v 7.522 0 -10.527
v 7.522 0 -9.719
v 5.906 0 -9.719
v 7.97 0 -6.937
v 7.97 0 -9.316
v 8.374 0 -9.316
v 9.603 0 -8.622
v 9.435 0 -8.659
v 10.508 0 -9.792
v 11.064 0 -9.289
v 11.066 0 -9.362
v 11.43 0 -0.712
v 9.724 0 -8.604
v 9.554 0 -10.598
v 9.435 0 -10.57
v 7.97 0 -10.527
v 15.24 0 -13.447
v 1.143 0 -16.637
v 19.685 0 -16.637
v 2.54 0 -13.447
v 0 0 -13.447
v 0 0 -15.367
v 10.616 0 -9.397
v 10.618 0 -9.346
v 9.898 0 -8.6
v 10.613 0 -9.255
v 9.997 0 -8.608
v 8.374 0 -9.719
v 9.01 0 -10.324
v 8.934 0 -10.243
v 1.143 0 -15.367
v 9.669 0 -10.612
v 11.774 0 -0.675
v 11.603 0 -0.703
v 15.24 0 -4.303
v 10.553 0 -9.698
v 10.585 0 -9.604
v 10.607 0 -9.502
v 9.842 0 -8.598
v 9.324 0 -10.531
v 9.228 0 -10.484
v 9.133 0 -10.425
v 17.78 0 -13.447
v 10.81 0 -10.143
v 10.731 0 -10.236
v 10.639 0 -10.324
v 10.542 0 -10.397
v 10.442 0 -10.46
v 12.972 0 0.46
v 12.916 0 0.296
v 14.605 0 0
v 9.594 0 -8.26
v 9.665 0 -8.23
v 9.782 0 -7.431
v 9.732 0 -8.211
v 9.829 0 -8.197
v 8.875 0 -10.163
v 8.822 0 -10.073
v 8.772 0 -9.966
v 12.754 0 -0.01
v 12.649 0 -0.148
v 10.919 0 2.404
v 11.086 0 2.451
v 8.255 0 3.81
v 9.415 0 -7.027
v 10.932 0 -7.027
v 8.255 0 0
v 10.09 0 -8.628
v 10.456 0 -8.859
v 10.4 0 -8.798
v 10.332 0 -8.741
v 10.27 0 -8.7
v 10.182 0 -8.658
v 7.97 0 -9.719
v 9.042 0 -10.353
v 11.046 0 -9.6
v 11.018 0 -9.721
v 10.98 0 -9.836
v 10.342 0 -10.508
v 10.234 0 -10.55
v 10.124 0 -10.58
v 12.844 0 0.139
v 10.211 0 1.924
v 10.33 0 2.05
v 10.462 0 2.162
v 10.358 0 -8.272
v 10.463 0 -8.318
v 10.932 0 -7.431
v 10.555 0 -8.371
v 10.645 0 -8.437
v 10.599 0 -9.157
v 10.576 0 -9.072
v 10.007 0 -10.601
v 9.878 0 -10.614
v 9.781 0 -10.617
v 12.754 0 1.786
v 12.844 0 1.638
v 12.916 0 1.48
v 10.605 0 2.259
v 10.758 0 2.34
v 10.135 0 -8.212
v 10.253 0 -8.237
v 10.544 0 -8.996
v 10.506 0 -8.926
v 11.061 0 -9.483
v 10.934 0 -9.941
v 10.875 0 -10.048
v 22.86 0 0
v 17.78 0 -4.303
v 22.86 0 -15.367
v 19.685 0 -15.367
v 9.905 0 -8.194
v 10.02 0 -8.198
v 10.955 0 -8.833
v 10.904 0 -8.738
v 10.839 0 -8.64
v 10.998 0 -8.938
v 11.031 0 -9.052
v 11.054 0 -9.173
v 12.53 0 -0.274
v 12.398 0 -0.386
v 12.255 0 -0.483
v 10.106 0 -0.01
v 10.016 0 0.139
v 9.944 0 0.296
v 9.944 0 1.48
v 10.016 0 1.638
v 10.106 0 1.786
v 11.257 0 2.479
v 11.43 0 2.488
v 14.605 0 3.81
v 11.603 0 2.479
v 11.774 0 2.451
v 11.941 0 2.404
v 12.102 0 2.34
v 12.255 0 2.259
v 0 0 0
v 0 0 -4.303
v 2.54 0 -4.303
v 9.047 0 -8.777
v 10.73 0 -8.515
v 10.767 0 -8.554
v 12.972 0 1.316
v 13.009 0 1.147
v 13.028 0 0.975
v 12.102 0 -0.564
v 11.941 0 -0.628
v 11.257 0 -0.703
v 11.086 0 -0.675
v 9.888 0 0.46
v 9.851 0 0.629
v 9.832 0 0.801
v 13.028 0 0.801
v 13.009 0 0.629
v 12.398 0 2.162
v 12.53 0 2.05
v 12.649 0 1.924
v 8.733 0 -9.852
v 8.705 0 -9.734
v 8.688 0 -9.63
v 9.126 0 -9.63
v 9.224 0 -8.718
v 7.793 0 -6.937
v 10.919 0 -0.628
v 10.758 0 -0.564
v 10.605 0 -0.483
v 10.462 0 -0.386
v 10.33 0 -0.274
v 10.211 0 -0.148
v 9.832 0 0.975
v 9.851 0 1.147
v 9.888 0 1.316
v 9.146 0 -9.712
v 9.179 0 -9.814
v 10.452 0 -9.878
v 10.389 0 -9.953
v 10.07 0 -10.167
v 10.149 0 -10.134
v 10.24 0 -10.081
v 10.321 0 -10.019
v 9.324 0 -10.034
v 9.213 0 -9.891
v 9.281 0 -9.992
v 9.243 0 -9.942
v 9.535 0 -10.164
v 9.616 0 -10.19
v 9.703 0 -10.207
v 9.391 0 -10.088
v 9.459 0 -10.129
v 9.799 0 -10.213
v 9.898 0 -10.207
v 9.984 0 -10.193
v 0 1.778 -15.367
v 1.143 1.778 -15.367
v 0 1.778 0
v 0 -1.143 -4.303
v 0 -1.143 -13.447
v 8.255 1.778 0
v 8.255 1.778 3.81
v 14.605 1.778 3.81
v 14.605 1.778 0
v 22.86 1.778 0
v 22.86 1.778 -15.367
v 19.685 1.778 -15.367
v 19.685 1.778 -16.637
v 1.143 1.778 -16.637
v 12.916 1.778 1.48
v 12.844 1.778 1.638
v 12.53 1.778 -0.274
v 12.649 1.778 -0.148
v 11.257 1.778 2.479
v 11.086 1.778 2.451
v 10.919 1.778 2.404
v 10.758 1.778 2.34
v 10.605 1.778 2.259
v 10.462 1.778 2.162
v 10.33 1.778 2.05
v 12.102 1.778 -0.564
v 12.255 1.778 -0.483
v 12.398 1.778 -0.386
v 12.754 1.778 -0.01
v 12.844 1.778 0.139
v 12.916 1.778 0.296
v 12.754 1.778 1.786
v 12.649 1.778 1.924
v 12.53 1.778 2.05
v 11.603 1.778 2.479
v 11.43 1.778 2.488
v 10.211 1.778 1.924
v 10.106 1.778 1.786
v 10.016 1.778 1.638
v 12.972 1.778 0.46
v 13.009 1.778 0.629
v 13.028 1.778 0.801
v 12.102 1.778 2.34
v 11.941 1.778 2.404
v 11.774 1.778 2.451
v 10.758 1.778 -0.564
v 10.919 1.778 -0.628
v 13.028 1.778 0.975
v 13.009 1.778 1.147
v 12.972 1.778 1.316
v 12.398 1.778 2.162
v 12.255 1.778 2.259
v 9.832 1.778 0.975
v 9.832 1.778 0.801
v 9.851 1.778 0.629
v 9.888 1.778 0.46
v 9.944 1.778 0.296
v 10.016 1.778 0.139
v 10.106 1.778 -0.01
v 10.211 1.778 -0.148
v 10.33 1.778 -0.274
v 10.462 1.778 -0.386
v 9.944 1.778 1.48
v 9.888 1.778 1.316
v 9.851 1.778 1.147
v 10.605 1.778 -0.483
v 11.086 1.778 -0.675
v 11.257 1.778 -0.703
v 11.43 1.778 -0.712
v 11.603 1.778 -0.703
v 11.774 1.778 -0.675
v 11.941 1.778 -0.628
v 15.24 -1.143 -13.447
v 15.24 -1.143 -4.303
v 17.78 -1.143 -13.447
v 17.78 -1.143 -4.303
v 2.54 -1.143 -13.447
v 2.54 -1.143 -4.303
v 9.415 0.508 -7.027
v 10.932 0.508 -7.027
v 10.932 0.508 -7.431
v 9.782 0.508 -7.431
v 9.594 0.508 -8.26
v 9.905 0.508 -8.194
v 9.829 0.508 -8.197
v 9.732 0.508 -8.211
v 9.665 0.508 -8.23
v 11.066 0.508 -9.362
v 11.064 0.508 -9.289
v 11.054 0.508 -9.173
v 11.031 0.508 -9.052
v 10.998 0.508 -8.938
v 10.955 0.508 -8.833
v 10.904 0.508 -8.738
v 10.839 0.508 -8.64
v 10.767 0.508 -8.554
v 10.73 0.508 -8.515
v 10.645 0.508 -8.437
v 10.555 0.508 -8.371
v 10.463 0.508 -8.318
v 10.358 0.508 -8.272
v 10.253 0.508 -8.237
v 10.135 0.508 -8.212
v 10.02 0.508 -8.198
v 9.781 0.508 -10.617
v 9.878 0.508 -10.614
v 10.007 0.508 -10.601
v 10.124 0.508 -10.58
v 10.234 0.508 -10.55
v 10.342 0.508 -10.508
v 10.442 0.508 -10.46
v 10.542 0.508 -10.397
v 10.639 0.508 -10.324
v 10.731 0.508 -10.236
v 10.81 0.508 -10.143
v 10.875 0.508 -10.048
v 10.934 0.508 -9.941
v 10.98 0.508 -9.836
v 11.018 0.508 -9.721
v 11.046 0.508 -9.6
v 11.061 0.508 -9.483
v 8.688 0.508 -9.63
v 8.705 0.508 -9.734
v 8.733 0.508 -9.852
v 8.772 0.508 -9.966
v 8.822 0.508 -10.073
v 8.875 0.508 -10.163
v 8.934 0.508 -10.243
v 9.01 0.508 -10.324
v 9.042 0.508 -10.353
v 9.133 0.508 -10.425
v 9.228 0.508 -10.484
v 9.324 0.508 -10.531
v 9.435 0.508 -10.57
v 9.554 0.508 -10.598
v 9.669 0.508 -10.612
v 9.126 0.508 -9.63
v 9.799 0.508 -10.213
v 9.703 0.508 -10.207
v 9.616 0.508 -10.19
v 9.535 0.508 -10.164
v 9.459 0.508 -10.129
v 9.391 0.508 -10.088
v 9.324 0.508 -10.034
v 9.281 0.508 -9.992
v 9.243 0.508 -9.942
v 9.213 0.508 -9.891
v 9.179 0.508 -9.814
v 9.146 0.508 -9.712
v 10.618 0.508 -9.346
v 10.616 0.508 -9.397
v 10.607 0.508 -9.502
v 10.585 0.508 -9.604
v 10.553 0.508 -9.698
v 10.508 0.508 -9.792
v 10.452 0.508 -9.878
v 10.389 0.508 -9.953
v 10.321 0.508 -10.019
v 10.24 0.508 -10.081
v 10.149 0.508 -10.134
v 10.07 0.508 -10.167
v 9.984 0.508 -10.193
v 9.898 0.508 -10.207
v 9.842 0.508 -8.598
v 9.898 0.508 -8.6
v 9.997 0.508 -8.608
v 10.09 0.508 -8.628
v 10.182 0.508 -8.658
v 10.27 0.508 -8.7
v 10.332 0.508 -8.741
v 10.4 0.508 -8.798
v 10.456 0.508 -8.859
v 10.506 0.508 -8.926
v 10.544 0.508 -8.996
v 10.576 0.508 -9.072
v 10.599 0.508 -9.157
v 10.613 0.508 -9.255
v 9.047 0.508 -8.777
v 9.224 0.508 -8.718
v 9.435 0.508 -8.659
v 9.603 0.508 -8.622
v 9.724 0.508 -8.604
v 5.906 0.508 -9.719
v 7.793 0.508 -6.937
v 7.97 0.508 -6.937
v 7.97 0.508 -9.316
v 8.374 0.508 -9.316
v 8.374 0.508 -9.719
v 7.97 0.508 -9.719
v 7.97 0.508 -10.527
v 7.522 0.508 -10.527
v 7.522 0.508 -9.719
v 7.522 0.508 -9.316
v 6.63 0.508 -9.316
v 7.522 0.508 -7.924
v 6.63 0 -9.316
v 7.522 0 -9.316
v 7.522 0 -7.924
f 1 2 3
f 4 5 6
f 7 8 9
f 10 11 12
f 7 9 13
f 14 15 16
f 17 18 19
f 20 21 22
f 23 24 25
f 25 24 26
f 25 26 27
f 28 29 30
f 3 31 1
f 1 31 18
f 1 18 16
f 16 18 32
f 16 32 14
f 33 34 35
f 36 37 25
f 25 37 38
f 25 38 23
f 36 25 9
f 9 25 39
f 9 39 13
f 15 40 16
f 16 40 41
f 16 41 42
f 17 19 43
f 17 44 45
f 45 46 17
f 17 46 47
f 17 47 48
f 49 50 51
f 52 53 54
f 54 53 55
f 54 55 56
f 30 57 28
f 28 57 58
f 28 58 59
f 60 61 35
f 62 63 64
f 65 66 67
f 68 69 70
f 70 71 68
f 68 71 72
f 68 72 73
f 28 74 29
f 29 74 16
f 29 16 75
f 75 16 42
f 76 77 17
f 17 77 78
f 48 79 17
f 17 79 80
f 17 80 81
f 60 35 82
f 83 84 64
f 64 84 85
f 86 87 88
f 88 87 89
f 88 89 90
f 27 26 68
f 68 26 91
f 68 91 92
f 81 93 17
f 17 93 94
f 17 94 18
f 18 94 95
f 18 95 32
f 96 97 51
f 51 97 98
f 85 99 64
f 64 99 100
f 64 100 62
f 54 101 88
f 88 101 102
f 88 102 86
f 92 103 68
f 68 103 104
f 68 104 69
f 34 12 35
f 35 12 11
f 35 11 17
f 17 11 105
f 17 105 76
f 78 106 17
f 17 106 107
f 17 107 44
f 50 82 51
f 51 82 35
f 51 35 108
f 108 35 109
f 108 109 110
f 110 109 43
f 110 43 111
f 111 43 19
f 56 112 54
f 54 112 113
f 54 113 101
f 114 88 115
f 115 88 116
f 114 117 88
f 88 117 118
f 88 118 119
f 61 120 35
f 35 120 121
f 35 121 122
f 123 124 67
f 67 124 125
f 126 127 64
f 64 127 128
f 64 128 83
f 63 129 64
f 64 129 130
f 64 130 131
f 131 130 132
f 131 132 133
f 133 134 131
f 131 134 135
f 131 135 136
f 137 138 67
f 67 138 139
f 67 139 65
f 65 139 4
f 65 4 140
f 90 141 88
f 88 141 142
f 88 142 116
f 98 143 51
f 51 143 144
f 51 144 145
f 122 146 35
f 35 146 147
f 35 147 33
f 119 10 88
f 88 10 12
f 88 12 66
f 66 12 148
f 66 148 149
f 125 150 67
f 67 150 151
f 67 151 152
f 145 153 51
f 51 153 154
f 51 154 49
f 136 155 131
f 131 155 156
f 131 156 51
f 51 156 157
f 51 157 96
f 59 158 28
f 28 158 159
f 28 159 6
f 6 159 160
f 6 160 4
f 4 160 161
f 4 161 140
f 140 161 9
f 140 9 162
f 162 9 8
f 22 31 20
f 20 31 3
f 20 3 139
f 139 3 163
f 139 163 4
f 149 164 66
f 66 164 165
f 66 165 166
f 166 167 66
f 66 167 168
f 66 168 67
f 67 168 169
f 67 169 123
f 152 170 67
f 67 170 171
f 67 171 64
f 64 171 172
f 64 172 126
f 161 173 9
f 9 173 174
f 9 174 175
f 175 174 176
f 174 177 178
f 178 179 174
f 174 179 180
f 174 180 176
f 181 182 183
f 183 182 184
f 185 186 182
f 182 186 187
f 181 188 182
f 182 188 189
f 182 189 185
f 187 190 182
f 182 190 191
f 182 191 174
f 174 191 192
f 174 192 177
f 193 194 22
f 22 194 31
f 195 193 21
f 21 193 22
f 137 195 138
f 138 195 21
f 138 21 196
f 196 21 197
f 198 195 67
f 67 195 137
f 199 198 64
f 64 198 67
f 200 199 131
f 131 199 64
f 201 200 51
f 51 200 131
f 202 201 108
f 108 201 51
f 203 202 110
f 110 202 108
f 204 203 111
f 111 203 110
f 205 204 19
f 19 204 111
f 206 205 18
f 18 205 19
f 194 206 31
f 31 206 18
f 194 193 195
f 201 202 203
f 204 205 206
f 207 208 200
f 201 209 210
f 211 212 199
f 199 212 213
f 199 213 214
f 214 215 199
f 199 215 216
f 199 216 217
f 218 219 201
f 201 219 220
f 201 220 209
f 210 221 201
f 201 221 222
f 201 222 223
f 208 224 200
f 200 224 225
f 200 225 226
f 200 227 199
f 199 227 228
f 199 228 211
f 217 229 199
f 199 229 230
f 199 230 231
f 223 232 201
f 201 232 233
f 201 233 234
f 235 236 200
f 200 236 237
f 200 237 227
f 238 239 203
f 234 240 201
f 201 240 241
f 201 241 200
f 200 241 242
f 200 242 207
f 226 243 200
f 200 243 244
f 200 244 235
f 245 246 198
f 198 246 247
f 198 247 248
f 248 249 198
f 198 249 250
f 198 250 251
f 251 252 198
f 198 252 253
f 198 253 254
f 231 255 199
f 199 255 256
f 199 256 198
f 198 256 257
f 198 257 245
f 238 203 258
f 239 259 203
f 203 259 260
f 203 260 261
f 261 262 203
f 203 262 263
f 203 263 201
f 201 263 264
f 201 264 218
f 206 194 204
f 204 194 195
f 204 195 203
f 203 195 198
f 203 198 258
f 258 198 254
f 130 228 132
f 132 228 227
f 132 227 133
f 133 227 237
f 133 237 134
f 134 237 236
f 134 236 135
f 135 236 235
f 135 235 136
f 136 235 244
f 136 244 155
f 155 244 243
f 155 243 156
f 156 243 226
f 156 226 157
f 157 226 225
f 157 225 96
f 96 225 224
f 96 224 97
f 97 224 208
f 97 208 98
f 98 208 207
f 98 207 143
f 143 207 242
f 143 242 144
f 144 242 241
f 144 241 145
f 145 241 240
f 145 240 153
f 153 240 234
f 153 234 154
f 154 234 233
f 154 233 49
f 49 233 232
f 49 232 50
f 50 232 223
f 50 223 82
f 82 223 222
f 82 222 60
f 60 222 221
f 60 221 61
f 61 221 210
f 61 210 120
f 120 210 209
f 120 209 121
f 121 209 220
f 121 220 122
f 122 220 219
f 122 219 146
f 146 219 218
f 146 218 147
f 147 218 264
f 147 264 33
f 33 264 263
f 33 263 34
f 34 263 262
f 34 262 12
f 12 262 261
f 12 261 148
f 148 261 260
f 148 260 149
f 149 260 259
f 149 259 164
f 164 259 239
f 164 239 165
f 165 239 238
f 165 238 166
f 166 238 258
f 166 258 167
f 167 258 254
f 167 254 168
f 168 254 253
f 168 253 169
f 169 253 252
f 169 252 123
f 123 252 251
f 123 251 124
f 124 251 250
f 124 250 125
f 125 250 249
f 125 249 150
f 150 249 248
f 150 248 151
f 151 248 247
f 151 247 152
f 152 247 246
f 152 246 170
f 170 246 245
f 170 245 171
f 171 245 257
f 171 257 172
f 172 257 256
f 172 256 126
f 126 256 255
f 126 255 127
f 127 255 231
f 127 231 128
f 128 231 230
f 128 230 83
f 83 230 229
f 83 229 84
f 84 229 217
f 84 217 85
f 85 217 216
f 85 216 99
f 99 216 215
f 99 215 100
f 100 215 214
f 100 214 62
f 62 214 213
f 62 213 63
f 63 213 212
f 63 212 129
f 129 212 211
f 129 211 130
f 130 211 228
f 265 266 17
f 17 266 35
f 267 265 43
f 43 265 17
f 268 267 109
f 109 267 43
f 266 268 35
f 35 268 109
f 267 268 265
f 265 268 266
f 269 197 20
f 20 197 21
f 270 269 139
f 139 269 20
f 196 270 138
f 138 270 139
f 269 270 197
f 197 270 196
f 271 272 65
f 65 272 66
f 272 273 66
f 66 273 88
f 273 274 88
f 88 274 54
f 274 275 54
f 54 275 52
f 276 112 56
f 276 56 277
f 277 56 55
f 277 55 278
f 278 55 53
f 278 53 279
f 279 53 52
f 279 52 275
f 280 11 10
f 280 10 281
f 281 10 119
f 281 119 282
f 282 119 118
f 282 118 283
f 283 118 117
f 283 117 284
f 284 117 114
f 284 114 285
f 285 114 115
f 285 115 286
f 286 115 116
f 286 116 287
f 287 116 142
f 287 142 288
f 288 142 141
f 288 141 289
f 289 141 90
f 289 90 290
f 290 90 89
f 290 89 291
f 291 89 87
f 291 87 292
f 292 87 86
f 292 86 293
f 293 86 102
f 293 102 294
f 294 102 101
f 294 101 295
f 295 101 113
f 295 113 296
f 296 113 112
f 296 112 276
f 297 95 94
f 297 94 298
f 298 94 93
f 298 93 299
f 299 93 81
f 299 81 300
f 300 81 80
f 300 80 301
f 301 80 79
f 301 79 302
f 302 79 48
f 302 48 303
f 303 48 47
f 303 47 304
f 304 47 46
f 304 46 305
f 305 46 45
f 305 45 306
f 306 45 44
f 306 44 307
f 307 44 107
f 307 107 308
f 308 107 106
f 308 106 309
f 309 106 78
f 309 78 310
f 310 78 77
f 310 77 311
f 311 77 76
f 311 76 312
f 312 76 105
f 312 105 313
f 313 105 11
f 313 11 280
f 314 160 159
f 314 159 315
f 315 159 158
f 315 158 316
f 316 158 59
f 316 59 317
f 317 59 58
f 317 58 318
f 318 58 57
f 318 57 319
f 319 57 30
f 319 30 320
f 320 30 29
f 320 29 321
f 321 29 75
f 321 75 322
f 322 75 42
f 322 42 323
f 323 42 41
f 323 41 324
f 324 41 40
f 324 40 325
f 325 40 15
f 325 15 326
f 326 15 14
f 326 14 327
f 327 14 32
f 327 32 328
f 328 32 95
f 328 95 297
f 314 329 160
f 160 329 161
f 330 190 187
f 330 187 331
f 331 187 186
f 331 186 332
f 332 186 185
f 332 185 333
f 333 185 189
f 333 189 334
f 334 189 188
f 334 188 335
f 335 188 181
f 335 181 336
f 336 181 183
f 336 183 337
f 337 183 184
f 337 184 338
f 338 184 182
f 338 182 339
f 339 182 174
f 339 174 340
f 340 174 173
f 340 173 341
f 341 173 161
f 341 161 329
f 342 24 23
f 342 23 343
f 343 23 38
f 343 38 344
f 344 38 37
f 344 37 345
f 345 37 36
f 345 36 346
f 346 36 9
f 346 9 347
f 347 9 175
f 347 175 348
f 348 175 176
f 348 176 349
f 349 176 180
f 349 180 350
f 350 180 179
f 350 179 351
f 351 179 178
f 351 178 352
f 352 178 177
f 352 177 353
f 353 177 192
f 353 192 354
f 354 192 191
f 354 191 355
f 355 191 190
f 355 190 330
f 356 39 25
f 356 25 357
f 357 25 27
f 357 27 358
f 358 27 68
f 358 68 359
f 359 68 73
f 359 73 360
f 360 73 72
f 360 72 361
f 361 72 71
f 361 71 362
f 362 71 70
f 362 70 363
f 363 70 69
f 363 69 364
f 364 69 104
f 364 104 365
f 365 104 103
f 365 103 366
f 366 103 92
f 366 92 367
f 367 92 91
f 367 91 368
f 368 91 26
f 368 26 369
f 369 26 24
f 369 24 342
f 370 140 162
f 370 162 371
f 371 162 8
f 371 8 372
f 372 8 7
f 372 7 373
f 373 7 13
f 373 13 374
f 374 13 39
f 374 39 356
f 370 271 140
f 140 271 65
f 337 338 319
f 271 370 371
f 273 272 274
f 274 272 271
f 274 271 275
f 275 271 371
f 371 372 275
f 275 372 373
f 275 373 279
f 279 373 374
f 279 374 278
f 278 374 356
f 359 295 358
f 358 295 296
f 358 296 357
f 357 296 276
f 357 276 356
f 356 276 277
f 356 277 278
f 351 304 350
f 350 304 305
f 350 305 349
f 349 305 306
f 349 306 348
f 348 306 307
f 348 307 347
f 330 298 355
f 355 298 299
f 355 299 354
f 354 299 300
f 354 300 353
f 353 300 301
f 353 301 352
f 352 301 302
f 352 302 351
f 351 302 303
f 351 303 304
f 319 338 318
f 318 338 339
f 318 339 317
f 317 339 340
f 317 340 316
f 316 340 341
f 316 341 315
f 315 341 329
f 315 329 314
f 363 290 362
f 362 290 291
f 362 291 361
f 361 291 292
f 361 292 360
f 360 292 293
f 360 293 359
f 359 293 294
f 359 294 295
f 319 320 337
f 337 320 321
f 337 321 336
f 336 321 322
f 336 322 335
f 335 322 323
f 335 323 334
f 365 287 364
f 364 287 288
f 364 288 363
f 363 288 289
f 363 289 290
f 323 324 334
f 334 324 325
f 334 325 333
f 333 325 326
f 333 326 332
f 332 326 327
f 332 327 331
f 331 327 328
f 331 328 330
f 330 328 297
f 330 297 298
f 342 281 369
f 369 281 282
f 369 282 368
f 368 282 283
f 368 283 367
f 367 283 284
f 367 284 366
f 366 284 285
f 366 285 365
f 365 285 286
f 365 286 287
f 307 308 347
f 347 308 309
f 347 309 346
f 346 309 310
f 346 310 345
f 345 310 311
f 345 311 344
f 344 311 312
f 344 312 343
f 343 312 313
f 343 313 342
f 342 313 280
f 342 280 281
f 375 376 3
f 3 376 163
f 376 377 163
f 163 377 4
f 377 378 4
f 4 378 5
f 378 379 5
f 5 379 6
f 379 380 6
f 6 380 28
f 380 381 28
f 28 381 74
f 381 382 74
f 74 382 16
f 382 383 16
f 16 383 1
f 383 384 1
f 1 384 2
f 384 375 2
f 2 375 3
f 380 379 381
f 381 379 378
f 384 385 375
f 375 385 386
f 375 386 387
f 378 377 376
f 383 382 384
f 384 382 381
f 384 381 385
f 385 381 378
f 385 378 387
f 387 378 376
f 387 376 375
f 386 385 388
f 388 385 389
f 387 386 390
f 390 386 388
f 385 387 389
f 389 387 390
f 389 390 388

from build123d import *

# Parameters (mm, degrees)
BOSS_EXTRUDE1_DEPTH  = 1.778
M3_CLEARANCE_HOLE1_D = 3.2
SKETCH4_W            = 2.54
SKETCH4_H            = 9.144
BOSS_EXTRUDE2_DEPTH  = 1.143
CUT_EXTRUDE1_DEPTH   = 0.508


with BuildPart() as part:
    # Sketch1 → Boss-Extrude1 (new body)
    with BuildSketch(Plane(origin=(0, 0, 0), x_dir=(1, 0, 0), z_dir=(0, 1, 0))):
        Polygon((0, 15.367), (0, 0), (8.255, 0), (8.255, -3.81), (14.605, -3.81), (14.605, 0), (22.86, 0), (22.86, 15.367), (19.685, 15.367), (19.685, 16.637), (1.143, 16.637), (1.143, 15.367), align=None)
    extrude(amount=BOSS_EXTRUDE1_DEPTH)

    # M3 Clearance Hole1 (through all)
    with Locations(Plane(origin=(0, 1.778, 0), x_dir=(1, 0, 0), z_dir=(0, 1, 0))):
        with Locations((11.43, -0.888075369)):
            Hole(M3_CLEARANCE_HOLE1_D / 2)

    # Sketch4 → Boss-Extrude2 (add)
    with BuildSketch(Plane.XZ):
        with Locations((16.51, -8.874849992)):
            Rectangle(SKETCH4_W, SKETCH4_H)
        with Locations((1.27, -8.874849992)):
            Rectangle(SKETCH4_W, SKETCH4_H)
    extrude(amount=BOSS_EXTRUDE2_DEPTH)

    # Sketch6 → Cut-Extrude1 (cut)
    # profile 1 of 2: a face of its own
    with BuildSketch(Plane.XZ):
        Polygon((7.792887548, -6.937433067), (7.970271363, -6.937433067), (7.970271363, -9.315638195), (8.374117516, -9.315638195), (8.374117516, -9.719484349), (7.970271363, -9.719484349), (7.970271363, -10.527176657), (7.521553414, -10.527176657), (7.521553414, -9.719484349), (5.906168798, -9.719484349), align=None)
        Polygon((7.521553414, -9.315638195), (7.521553414, -7.923911433), (6.630427613, -9.315638195), align=None, mode=Mode.SUBTRACT)
    # profile 2 of 2: a face of its own
    with BuildSketch(Plane.XZ):
        with BuildLine():
            Line((10.931809824, -7.027176657), (10.931809824, -7.431022811))
            Line((10.931809824, -7.431022811), (9.78197008, -7.431022811))
            Line((9.78197008, -7.431022811), (9.594069439, -8.260449894))
            add(Edge.make_bspline(
                [(9.594069439, -8.260449894), (9.615990404, -8.249885481), (9.661103923, -8.228143835), (9.736526874, -8.209200238), (9.818414717, -8.195871542), (9.875622645, -8.194537138), (9.905367516, -8.193843324)],
                knots=[0, 0, 0, 0, 0.906577793, 1.865744317, 2.890308309, 4, 4, 4, 4], degree=3))
            add(Edge.make_bspline(
                [(9.905367516, -8.193843324), (9.947495326, -8.194614643), (10.030206236, -8.196129001), (10.150750761, -8.213051384), (10.265618253, -8.23840338), (10.373863762, -8.27622385), (10.476723422, -8.322782641), (10.573081318, -8.381044204), (10.66283737, -8.450020231), (10.745871527, -8.528536241), (10.821549898, -8.614059011), (10.886547349, -8.706415291), (10.942889062, -8.802907042), (10.98754851, -8.905201736), (11.022834099, -9.012241242), (11.047928323, -9.124472926), (11.063881421, -9.241560513), (11.065569539, -9.321428782), (11.066425209, -9.361912234)],
                knots=[0, 0, 0, 0, 1.094894284, 2.149641875, 3.159658044, 4.149576056, 5.125966368, 6.091225838, 7.071072142, 8.064343292, 9.05924964, 10.03573454, 10.996966885, 11.96032995, 12.932910184, 13.923798045, 14.947619342, 16, 16, 16, 16], degree=3))
            add(Edge.make_bspline(
                [(11.066425209, -9.361912234), (11.06576722, -9.390201132), (11.064465608, -9.446161323), (11.057683043, -9.529370503), (11.044736374, -9.610784817), (11.027546624, -9.691033112), (11.003860501, -9.769427433), (10.97689686, -9.84701), (10.943769877, -9.922543999), (10.905950095, -9.995997939), (10.863989349, -10.066834257), (10.817788624, -10.134193652), (10.767242359, -10.197537594), (10.712171199, -10.256335904), (10.654080504, -10.312100821), (10.59145493, -10.363376929), (10.524472443, -10.410379599), (10.454088485, -10.453622636), (10.380336705, -10.492689435), (10.302783653, -10.525035952), (10.223354637, -10.554425694), (10.140085205, -10.576431812), (10.054545441, -10.594949081), (9.965708783, -10.607237727), (9.874197953, -10.615249641), (9.812135855, -10.616356991), (9.780567837, -10.616920247)],
                knots=[0, 0, 0, 0, 1.012275937, 2.002451767, 2.98397589, 3.959820946, 4.936095762, 5.911940818, 6.896771482, 7.884012822, 8.866284557, 9.840372785, 10.804070441, 11.762530572, 12.720625922, 13.68308951, 14.655094125, 15.646011038, 16.637104318, 17.63729087, 18.650257215, 19.66446511, 20.715636712, 21.77986274, 22.870722459, 24, 24, 24, 24], degree=3))
            add(Edge.make_bspline(
                [(9.780567837, -10.616920247), (9.74501295, -10.616066651), (9.67487051, -10.614382685), (9.571851951, -10.602438699), (9.473022547, -10.582173288), (9.378801083, -10.553163592), (9.288486547, -10.516777369), (9.202848927, -10.471765507), (9.121555434, -10.418531983), (9.044501382, -10.358091639), (8.974225046, -10.289145312), (8.909445749, -10.214922365), (8.854253251, -10.132690105), (8.805700589, -10.044717841), (8.763983147, -9.950290059), (8.73079481, -9.849227723), (8.704256829, -9.74191356), (8.693649883, -9.66772079), (8.68822008, -9.62974076)],
                knots=[0, 0, 0, 0, 1.049569621, 2.070583864, 3.057046508, 4.023914414, 4.977170942, 5.927726879, 6.875021894, 7.842677272, 8.813672282, 9.777581439, 10.74592533, 11.731059957, 12.74126976, 13.788569057, 14.867946107, 16, 16, 16, 16], degree=3))
            Line((8.68822008, -9.62974076), (9.126421202, -9.62974076))
            add(Edge.make_bspline(
                [(9.126421202, -9.62974076), (9.134761141, -9.66642032), (9.150417161, -9.735276452), (9.184050813, -9.829097607), (9.220098703, -9.908893266), (9.264188523, -9.974152261), (9.314792456, -10.027719829), (9.370959214, -10.074218016), (9.432665368, -10.115927928), (9.500597498, -10.150550709), (9.572171535, -10.17860074), (9.646539379, -10.198177788), (9.722199143, -10.210487725), (9.773277222, -10.212212404), (9.798797004, -10.213074093)],
                knots=[0, 0, 0, 0, 1.385459112, 2.600831482, 3.66841355, 4.605180919, 5.48910649, 6.376050311, 7.288896949, 8.229144678, 9.181161654, 10.117453426, 11.059436513, 12, 12, 12, 12], degree=3))
            add(Edge.make_bspline(
                [(9.798797004, -10.213074093), (9.826403635, -10.212147278), (9.880907737, -10.210317457), (9.9612011, -10.199363174), (10.03799139, -10.179100678), (10.112387313, -10.152836823), (10.183089403, -10.117064359), (10.251833101, -10.075295418), (10.316111719, -10.02400433), (10.377721757, -9.966974677), (10.434150348, -9.903805344), (10.483285658, -9.835553671), (10.525200218, -9.763590176), (10.558602509, -9.687436209), (10.585711354, -9.607789577), (10.60434487, -9.524106273), (10.615970273, -9.436561106), (10.617120647, -9.376907087), (10.61770726, -9.346487554)],
                knots=[0, 0, 0, 0, 0.99750234, 1.969380735, 2.919490565, 3.862219911, 4.813679117, 5.776605688, 6.762898166, 7.778387729, 8.806918829, 9.816812977, 10.811632172, 11.809420289, 12.815921014, 13.846113939, 14.901663155, 16, 16, 16, 16], degree=3))
            add(Edge.make_bspline(
                [(10.61770726, -9.346487554), (10.61700976, -9.319346395), (10.615640161, -9.266052481), (10.605607573, -9.18816159), (10.589693867, -9.113863306), (10.566569889, -9.043856082), (10.536844883, -8.977752547), (10.500292329, -8.915975577), (10.457023625, -8.858181151), (10.408363657, -8.804181975), (10.353279511, -8.755933356), (10.294135331, -8.712751732), (10.2291352, -8.677827545), (10.160623288, -8.647941478), (10.087014842, -8.626099622), (10.009628455, -8.608500045), (9.927054225, -8.6000444), (9.870558601, -8.59848814), (9.841565433, -8.597689477)],
                knots=[0, 0, 0, 0, 1.071512717, 2.104004018, 3.095982969, 4.067795438, 5.009520676, 5.952827242, 6.895998369, 7.856350385, 8.817411605, 9.782937659, 10.74115891, 11.725120868, 12.729302161, 13.768330494, 14.854722481, 16, 16, 16, 16], degree=3))
            add(Edge.make_bspline(
                [(9.841565433, -8.597689477), (9.816772294, -8.598284479), (9.764721648, -8.599533624), (9.683271646, -8.608565862), (9.594637888, -8.622772307), (9.498960529, -8.6424206), (9.396147628, -8.66801835), (9.286074253, -8.699036547), (9.168618604, -8.735231112), (9.088481339, -8.762914245), (9.047194439, -8.777176657)],
                knots=[0, 0, 0, 0, 0.727614075, 1.527550888, 2.402655696, 3.361819828, 4.39328773, 5.511706796, 6.718025739, 8, 8, 8, 8], degree=3))
            Line((9.047194439, -8.777176657), (9.41458226, -7.027176657))
            Line((9.41458226, -7.027176657), (10.931809824, -7.027176657))
        make_face()
    extrude(amount=-CUT_EXTRUDE1_DEPTH, mode=Mode.SUBTRACT)


solid = part.part
